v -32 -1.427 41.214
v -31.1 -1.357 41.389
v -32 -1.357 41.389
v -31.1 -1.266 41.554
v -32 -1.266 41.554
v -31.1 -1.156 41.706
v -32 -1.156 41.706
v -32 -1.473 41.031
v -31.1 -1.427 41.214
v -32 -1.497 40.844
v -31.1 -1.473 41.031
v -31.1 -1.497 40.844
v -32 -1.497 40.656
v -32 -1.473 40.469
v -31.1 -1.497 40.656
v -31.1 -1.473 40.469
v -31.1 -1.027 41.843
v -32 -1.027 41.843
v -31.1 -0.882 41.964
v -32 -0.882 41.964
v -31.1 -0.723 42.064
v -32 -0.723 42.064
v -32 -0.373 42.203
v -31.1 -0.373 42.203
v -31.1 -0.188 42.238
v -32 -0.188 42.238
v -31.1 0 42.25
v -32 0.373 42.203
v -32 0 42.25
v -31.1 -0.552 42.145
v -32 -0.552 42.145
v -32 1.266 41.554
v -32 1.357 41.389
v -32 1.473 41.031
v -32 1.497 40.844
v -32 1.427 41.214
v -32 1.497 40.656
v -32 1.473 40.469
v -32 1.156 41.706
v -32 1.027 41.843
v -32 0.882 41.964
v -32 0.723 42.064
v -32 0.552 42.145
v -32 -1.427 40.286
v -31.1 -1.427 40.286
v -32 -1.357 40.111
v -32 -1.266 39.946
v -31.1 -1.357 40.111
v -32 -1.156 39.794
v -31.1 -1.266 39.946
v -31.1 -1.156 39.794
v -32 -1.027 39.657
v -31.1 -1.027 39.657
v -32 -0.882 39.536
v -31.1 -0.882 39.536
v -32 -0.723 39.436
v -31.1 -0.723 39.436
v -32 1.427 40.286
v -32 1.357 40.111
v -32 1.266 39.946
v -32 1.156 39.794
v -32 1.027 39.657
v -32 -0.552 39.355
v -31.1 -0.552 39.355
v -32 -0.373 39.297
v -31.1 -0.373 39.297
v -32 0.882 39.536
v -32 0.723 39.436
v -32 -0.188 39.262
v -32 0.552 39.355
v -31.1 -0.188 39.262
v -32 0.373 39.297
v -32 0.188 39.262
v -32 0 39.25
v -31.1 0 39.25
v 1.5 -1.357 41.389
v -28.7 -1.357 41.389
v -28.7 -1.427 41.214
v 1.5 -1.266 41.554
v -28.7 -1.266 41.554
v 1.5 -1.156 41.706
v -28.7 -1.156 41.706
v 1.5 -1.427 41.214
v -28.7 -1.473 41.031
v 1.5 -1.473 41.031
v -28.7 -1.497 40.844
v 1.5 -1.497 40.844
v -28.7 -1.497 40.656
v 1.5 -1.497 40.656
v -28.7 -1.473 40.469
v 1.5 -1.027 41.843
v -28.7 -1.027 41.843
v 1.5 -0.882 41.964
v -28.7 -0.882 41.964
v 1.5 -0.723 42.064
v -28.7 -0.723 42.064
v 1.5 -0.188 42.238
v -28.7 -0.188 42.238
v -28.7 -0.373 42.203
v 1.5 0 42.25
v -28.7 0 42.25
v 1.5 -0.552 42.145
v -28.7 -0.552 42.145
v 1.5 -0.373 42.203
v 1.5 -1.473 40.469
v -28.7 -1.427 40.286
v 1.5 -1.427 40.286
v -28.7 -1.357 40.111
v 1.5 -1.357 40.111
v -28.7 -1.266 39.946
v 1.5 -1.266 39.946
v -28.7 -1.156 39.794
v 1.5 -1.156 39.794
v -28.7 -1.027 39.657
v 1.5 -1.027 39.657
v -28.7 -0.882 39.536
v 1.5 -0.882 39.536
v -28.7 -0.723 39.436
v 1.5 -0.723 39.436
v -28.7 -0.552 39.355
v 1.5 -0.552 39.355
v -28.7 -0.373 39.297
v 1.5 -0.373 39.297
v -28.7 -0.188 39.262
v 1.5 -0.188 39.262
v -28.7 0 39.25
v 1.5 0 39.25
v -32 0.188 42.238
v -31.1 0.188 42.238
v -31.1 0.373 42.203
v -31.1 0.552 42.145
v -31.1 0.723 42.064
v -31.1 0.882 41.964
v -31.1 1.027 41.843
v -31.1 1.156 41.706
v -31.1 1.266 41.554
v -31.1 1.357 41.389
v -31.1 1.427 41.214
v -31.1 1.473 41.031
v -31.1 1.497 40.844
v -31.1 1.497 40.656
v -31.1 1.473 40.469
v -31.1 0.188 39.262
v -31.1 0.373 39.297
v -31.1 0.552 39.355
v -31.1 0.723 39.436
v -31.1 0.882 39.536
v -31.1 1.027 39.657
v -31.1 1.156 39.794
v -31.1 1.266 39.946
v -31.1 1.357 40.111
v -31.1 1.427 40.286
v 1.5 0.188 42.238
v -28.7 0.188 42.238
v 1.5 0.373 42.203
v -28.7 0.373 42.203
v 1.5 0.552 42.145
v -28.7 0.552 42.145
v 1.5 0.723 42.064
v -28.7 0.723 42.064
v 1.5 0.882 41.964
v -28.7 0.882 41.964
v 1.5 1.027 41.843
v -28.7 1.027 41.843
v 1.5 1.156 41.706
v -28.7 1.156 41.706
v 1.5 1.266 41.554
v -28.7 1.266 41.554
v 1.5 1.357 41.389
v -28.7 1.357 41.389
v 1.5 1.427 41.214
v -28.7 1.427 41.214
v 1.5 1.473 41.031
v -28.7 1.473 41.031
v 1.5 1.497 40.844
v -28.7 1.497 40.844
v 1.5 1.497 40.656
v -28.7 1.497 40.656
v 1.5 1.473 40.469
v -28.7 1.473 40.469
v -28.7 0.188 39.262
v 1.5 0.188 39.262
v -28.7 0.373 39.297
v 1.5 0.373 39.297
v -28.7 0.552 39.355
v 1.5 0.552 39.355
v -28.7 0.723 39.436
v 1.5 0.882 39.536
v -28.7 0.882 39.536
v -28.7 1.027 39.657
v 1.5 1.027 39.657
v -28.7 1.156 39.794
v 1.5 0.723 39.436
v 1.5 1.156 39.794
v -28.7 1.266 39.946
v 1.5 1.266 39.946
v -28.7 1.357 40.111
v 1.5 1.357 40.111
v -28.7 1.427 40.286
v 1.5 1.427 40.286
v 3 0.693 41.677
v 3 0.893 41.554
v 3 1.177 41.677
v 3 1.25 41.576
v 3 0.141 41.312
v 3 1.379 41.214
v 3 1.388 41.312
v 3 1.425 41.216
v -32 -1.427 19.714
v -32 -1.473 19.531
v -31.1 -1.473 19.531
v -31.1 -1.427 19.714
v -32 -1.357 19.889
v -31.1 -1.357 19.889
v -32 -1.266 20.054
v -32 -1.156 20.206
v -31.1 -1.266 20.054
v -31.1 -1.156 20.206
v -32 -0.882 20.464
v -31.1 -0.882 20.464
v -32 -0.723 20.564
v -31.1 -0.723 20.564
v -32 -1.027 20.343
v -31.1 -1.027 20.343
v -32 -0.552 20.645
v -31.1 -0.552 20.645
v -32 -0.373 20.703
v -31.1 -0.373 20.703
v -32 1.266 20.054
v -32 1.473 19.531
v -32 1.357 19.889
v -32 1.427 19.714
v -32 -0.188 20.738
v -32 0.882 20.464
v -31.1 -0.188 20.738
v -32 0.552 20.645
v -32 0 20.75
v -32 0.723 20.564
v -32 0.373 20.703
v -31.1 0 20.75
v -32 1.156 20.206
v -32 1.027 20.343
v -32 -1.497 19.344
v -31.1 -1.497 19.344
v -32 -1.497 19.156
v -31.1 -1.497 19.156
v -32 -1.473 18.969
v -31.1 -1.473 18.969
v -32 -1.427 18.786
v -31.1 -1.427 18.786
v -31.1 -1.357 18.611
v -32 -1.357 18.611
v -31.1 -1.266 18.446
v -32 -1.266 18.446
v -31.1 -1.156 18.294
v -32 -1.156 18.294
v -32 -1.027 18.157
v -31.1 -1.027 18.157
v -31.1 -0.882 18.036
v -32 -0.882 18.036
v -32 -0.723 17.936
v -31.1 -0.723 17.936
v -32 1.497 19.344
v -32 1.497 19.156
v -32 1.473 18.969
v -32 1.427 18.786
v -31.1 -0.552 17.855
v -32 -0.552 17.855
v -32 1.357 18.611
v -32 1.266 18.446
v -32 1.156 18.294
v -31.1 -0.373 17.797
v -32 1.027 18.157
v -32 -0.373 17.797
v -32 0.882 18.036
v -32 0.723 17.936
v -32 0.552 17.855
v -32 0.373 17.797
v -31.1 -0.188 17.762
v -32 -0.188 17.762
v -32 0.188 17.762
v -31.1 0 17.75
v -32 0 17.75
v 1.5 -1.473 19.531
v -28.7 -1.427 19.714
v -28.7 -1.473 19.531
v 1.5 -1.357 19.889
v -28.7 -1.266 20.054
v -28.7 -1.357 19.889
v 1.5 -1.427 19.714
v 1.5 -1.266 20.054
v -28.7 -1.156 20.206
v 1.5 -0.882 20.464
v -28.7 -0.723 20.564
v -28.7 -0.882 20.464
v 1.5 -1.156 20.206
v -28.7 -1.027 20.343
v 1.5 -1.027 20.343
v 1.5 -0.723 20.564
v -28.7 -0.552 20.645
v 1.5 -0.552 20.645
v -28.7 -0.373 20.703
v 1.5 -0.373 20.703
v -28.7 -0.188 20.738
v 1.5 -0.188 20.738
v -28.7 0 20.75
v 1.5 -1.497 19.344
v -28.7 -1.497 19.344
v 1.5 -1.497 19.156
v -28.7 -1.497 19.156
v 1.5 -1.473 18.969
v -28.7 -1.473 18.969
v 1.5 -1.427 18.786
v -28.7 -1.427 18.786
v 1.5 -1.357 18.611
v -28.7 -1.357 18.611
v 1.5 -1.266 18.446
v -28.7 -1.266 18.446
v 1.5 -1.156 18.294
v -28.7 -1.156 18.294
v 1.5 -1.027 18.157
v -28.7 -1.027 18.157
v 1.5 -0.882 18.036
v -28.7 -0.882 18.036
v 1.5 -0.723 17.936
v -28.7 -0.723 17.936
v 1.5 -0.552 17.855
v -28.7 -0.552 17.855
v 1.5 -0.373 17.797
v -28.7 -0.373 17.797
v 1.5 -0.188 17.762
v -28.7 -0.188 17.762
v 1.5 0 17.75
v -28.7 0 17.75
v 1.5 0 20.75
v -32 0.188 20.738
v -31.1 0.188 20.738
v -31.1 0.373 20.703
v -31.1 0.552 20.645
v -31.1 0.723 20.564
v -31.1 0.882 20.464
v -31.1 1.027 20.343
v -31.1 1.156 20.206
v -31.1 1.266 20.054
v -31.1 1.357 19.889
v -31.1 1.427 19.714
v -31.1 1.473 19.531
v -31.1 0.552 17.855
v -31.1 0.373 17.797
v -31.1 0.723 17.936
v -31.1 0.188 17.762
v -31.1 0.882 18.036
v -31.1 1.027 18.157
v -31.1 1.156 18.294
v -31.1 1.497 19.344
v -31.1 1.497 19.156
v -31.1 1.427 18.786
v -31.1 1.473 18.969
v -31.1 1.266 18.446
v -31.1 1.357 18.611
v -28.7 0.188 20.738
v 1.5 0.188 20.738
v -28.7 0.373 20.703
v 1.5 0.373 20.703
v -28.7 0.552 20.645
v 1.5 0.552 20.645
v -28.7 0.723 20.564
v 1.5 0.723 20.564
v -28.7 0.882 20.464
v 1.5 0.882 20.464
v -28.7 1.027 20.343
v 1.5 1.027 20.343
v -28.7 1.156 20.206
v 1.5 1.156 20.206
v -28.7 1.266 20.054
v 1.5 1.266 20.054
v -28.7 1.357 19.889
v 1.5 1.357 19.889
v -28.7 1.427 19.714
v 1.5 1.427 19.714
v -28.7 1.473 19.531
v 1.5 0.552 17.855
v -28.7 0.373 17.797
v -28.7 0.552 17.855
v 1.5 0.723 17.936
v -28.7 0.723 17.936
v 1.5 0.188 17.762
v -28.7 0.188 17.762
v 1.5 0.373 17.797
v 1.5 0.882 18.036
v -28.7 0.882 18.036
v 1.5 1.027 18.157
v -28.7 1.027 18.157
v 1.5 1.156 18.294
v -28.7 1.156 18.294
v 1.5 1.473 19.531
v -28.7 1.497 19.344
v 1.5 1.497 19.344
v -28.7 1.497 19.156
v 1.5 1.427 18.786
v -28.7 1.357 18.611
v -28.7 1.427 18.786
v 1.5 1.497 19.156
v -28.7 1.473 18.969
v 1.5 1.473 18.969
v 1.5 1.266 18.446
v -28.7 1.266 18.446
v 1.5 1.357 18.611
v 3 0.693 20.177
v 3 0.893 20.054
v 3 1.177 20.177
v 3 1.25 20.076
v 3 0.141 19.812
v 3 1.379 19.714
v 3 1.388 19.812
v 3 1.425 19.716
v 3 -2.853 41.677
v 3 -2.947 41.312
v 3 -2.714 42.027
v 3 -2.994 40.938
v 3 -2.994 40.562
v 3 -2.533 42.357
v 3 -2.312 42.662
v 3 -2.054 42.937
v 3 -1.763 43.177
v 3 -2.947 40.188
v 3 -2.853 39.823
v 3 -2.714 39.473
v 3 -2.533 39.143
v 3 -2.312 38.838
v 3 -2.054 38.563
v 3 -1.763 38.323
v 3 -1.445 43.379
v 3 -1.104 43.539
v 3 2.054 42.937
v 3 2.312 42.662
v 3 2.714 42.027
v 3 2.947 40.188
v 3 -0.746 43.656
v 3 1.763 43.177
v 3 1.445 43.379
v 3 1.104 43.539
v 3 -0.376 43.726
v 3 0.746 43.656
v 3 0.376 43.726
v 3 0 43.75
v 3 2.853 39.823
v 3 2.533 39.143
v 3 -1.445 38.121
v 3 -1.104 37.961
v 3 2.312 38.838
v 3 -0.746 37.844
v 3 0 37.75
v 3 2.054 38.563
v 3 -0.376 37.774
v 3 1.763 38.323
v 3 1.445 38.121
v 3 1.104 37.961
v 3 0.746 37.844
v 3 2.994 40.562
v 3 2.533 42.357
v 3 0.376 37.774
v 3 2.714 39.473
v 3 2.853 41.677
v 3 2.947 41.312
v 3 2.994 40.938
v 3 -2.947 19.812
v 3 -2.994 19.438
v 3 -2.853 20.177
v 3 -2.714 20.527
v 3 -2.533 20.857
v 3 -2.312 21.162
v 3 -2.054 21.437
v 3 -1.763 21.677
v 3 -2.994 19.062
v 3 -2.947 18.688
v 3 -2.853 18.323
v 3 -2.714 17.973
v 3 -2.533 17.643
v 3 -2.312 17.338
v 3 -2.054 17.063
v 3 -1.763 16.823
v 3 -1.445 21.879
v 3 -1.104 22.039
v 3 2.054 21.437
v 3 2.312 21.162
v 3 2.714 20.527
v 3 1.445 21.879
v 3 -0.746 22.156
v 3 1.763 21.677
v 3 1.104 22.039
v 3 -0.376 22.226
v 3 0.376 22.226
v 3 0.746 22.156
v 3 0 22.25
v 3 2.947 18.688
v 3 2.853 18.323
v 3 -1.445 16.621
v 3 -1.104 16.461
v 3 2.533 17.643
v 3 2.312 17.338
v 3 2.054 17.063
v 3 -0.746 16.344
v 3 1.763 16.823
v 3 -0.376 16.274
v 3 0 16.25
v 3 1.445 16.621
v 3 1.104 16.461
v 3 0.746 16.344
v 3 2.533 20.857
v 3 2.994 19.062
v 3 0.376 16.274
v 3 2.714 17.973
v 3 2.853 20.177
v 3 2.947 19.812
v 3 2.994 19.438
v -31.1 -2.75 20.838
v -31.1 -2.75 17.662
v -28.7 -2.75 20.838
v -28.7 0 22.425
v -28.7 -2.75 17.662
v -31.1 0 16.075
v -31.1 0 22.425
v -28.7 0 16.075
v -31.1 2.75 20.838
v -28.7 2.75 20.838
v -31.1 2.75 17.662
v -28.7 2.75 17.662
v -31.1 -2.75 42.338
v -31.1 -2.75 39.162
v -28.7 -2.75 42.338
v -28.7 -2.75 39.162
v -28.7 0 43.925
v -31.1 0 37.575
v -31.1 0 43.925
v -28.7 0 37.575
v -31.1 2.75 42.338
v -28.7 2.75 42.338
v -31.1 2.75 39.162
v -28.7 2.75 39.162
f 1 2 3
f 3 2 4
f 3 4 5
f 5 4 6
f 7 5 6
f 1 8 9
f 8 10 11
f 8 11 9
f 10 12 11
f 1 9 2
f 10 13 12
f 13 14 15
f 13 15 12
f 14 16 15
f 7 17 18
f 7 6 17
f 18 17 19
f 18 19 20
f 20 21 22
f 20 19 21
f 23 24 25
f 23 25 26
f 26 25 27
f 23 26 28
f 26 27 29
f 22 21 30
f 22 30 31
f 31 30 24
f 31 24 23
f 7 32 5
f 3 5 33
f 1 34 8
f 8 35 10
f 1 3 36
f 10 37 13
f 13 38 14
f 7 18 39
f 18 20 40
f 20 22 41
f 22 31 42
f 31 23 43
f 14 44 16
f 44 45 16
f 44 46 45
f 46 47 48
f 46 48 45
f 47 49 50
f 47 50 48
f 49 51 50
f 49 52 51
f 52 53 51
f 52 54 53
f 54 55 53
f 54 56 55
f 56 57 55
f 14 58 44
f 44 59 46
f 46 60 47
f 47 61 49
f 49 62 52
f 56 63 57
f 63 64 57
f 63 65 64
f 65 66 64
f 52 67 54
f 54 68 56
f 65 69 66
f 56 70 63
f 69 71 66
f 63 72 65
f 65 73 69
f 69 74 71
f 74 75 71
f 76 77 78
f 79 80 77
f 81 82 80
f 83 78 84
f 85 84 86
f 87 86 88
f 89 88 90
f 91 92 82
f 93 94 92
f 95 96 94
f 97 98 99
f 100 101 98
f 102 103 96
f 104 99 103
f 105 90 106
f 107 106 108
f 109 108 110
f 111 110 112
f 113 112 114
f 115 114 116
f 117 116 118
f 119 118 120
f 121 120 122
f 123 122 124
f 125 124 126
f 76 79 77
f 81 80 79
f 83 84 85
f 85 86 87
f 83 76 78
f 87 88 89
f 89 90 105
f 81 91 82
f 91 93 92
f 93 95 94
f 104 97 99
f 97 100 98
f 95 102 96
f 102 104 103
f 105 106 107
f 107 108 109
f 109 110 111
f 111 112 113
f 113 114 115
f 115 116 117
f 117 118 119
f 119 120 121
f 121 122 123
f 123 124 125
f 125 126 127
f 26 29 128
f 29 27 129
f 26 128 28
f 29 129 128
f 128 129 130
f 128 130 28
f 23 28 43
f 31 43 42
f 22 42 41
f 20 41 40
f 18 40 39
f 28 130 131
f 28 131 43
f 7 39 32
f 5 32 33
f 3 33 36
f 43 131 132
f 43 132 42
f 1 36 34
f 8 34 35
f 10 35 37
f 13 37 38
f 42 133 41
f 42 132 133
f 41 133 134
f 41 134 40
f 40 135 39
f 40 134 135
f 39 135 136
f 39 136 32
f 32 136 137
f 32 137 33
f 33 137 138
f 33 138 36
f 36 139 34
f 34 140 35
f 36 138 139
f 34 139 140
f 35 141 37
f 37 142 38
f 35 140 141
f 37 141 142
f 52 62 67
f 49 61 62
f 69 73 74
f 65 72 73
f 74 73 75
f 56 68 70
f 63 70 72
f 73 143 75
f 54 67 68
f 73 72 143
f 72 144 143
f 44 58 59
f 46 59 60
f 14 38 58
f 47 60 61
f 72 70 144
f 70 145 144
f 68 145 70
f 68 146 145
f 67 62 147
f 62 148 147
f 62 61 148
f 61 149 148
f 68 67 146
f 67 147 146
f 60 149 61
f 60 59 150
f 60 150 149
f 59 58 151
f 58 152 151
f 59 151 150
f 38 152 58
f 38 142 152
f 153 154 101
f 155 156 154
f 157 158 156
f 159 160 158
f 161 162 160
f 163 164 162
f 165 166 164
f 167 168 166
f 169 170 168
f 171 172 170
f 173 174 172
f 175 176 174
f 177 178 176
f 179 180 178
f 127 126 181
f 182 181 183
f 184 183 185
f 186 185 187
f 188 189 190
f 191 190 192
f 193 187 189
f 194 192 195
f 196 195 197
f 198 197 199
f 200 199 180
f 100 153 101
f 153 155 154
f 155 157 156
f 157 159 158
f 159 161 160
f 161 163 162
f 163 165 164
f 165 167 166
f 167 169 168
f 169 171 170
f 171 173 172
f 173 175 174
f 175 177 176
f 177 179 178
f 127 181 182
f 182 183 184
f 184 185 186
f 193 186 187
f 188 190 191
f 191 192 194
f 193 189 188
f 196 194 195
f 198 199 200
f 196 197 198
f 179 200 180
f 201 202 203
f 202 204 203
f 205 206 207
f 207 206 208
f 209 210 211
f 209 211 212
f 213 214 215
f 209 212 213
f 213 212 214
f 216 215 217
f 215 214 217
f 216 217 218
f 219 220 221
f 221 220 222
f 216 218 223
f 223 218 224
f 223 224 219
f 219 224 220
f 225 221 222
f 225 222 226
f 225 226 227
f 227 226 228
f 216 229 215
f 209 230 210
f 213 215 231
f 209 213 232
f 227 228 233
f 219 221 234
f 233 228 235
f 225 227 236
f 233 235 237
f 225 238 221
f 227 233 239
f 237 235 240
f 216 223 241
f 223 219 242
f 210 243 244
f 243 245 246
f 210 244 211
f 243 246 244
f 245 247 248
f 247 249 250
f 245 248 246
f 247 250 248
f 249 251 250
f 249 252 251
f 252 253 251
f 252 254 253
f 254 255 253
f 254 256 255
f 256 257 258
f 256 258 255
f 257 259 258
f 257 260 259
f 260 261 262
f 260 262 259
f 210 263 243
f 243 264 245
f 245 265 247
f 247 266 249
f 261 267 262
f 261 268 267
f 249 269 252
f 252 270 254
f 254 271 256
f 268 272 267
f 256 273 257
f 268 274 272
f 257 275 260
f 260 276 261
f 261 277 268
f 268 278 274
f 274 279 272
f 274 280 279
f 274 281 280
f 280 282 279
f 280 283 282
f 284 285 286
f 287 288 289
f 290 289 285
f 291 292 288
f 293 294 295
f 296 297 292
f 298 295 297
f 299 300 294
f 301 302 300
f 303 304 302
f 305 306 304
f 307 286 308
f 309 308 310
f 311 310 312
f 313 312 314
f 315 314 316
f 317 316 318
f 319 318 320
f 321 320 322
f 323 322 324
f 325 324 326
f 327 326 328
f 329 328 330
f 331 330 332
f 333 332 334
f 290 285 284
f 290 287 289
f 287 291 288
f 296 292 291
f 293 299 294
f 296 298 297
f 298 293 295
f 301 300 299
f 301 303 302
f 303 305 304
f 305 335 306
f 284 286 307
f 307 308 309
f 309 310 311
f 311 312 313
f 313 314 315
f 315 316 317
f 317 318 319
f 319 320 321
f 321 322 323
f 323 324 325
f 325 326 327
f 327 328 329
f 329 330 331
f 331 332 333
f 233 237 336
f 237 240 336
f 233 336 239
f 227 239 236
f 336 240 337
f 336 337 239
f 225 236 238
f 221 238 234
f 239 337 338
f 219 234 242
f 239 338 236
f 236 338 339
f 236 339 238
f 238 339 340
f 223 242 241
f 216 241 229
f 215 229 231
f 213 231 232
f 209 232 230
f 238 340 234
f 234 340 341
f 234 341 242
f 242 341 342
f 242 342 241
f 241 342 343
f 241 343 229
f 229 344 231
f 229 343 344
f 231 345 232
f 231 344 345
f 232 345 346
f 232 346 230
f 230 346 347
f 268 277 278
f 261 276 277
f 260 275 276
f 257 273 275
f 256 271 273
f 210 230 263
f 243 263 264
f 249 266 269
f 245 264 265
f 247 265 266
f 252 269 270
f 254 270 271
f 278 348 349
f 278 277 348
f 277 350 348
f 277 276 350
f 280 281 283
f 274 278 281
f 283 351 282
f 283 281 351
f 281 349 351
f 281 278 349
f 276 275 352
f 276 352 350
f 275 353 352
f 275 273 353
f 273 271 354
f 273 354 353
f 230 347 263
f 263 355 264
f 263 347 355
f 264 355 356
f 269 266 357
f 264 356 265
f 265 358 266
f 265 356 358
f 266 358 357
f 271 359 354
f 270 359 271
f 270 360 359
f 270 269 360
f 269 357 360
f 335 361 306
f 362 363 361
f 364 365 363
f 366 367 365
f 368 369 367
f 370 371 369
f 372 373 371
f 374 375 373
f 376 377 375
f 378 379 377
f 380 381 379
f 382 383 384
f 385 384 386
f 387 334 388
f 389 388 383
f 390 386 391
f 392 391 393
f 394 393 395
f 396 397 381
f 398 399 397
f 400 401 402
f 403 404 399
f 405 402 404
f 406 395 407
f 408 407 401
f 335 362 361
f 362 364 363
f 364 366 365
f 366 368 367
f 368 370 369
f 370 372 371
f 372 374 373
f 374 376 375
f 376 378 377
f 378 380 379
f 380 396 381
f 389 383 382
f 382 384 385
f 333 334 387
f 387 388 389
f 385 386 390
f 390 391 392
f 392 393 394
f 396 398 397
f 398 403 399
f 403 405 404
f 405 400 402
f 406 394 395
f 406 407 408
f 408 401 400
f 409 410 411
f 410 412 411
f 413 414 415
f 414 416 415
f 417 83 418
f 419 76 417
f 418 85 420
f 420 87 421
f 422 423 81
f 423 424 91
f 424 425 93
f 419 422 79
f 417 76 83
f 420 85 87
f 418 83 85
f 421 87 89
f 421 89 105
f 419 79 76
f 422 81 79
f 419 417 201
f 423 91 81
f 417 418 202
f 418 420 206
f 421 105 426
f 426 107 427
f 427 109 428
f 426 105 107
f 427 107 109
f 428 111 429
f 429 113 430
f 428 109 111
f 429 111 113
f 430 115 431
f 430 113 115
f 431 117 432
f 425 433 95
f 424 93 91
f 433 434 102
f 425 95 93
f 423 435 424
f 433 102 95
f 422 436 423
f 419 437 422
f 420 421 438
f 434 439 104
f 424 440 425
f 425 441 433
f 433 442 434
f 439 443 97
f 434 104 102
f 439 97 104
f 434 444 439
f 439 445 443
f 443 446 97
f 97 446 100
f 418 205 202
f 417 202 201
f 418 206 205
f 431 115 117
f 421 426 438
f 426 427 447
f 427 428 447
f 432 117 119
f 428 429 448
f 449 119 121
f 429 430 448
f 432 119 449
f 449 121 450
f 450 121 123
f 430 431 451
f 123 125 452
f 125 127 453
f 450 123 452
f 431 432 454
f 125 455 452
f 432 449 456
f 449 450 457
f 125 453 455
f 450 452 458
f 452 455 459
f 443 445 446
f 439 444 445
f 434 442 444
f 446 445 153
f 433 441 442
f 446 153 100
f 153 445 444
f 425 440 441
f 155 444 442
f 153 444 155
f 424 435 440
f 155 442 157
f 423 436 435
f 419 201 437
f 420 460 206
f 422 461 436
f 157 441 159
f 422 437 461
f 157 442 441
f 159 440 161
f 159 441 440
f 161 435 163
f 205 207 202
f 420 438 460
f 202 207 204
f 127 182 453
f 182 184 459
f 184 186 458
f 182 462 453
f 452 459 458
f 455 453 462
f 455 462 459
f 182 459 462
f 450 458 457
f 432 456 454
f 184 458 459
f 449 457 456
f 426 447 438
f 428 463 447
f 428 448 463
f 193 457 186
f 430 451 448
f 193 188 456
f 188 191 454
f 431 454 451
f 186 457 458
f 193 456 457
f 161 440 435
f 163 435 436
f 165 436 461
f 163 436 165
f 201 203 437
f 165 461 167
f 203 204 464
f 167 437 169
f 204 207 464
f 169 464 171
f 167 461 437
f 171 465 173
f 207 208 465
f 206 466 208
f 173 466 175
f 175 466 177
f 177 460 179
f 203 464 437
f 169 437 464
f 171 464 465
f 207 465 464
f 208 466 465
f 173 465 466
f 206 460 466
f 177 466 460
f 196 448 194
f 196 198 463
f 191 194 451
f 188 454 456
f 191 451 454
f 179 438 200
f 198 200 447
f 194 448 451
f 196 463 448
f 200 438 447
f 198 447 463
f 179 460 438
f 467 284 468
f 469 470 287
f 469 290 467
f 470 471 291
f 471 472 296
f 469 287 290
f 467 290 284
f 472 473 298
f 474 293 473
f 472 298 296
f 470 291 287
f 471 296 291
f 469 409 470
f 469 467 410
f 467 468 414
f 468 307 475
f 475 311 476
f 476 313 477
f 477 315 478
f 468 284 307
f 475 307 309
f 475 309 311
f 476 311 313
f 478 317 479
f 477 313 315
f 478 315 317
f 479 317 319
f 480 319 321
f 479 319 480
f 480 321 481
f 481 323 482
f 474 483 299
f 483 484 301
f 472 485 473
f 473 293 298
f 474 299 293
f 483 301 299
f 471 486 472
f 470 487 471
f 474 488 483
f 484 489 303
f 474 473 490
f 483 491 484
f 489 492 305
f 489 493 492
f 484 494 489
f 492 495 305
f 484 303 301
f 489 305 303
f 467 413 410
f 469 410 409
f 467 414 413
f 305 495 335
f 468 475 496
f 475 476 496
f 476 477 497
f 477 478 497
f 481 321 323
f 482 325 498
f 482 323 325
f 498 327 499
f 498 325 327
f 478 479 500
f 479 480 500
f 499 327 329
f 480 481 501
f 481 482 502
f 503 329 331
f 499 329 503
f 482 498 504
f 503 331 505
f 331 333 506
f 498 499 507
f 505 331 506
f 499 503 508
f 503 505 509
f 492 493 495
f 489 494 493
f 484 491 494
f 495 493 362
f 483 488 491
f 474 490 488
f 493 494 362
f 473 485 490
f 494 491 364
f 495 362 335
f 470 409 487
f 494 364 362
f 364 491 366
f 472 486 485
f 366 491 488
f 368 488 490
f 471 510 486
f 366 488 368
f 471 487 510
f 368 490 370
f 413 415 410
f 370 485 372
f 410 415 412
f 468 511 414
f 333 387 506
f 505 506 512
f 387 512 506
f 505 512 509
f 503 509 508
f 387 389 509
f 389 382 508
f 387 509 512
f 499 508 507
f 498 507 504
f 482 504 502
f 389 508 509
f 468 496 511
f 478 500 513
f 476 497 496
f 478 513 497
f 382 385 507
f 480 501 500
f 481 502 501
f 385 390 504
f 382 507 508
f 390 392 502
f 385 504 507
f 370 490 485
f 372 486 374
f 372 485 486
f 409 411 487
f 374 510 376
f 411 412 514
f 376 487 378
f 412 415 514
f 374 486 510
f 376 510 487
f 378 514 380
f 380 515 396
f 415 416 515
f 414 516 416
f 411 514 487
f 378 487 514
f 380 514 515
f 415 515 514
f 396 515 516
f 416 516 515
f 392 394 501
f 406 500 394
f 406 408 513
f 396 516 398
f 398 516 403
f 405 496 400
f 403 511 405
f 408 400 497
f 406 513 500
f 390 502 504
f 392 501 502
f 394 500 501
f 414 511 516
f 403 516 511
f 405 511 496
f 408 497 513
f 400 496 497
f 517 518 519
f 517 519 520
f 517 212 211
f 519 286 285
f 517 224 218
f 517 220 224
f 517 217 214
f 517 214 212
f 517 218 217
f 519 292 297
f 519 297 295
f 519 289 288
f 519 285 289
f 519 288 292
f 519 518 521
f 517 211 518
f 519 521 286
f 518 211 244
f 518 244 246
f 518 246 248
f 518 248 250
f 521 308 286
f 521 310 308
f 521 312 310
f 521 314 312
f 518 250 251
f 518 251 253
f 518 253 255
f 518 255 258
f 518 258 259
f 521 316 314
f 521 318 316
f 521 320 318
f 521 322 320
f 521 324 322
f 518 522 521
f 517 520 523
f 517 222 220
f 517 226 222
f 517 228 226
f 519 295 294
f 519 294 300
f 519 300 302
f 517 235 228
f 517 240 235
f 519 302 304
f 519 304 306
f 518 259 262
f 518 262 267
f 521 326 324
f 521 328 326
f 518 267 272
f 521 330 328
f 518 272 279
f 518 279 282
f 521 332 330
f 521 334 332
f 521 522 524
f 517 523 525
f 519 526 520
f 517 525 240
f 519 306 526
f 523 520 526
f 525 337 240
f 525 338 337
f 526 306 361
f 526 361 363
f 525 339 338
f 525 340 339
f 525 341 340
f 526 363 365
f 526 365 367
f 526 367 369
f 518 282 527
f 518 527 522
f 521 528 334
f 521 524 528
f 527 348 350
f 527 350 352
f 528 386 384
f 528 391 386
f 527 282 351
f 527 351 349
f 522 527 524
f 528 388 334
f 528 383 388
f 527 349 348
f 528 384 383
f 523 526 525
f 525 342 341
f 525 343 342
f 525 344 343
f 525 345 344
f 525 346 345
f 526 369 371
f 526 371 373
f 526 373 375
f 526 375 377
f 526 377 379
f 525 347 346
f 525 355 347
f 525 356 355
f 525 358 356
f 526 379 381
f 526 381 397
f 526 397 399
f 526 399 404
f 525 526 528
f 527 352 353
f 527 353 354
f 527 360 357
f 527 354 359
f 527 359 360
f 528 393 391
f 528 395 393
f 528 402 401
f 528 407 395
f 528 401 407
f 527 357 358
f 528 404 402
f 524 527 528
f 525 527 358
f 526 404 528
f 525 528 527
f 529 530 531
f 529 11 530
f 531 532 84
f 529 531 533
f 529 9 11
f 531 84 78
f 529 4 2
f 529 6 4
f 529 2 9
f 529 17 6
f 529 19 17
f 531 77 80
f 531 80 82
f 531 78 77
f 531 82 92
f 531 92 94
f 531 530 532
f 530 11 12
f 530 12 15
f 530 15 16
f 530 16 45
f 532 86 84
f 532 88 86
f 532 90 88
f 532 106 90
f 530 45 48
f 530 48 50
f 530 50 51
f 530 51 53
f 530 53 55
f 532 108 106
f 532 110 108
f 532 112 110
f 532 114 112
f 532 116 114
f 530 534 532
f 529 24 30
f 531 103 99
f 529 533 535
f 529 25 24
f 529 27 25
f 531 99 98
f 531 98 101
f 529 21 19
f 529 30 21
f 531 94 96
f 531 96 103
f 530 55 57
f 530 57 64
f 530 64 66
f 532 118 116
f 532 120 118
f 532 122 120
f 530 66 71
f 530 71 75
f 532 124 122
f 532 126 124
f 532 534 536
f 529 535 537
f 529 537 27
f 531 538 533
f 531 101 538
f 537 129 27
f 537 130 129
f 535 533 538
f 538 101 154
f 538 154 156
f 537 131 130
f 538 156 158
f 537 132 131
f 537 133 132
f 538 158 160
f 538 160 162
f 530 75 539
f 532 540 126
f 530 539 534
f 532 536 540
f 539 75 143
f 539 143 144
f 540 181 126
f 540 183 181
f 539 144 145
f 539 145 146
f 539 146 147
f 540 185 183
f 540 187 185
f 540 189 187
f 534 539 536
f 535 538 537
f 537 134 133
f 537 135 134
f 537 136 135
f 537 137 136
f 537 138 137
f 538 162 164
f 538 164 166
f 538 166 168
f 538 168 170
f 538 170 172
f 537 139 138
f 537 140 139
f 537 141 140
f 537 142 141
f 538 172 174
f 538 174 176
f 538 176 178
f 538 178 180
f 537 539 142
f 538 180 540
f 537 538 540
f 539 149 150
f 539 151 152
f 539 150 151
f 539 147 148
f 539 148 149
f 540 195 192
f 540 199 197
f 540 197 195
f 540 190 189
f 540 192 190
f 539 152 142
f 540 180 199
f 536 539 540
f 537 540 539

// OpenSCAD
$fn = 50;

difference() {
	union() {
		translate(v = [0, 0, 30]) {
			rotate(a = [0, 90, 0]) {
				difference() {
					union() {
						translate(v = [-10.75, 0, 3]) {
							rotate(a = [0, 0, 0]) {
								difference() {
									union() {
										translate(v = [0, 0, -35.0]) {
											cylinder(h = 35, r = 1.5);
										}
										translate(v = [0, 0, -1.5]) {
											cylinder(h = 1.5, r1 = 1.5, r2 = 3);
										}
									}
									union();
								}
							}
						}
						translate(v = [-10.75, 0, -31.1]) {
							rotate(a = [0, 0, 0]) {
								difference() {
									union() {
										linear_extrude(height = 2.4) {
											polygon(points = [[3.1754264805429417, 0.0], [1.5877132402714713, 2.75], [-1.5877132402714702, 2.7500000000000004], [-3.1754264805429417, 3.888775875324659e-16], [-1.5877132402714722, -2.7499999999999996], [1.5877132402714687, -2.7500000000000013]]);
										}
									}
									union();
								}
							}
						}
						translate(v = [10.75, 0, 3]) {
							rotate(a = [0, 0, 0]) {
								difference() {
									union() {
										translate(v = [0, 0, -35.0]) {
											cylinder(h = 35, r = 1.5);
										}
										translate(v = [0, 0, -1.5]) {
											cylinder(h = 1.5, r1 = 1.5, r2 = 3);
										}
									}
									union();
								}
							}
						}
						translate(v = [10.75, 0, -31.1]) {
							rotate(a = [0, 0, 0]) {
								difference() {
									union() {
										linear_extrude(height = 2.4) {
											polygon(points = [[3.1754264805429417, 0.0], [1.5877132402714713, 2.75], [-1.5877132402714702, 2.7500000000000004], [-3.1754264805429417, 3.888775875324659e-16], [-1.5877132402714722, -2.7499999999999996], [1.5877132402714687, -2.7500000000000013]]);
										}
									}
									union();
								}
							}
						}
					}
					union();
				}
			}
		}
	}
	union();
}
